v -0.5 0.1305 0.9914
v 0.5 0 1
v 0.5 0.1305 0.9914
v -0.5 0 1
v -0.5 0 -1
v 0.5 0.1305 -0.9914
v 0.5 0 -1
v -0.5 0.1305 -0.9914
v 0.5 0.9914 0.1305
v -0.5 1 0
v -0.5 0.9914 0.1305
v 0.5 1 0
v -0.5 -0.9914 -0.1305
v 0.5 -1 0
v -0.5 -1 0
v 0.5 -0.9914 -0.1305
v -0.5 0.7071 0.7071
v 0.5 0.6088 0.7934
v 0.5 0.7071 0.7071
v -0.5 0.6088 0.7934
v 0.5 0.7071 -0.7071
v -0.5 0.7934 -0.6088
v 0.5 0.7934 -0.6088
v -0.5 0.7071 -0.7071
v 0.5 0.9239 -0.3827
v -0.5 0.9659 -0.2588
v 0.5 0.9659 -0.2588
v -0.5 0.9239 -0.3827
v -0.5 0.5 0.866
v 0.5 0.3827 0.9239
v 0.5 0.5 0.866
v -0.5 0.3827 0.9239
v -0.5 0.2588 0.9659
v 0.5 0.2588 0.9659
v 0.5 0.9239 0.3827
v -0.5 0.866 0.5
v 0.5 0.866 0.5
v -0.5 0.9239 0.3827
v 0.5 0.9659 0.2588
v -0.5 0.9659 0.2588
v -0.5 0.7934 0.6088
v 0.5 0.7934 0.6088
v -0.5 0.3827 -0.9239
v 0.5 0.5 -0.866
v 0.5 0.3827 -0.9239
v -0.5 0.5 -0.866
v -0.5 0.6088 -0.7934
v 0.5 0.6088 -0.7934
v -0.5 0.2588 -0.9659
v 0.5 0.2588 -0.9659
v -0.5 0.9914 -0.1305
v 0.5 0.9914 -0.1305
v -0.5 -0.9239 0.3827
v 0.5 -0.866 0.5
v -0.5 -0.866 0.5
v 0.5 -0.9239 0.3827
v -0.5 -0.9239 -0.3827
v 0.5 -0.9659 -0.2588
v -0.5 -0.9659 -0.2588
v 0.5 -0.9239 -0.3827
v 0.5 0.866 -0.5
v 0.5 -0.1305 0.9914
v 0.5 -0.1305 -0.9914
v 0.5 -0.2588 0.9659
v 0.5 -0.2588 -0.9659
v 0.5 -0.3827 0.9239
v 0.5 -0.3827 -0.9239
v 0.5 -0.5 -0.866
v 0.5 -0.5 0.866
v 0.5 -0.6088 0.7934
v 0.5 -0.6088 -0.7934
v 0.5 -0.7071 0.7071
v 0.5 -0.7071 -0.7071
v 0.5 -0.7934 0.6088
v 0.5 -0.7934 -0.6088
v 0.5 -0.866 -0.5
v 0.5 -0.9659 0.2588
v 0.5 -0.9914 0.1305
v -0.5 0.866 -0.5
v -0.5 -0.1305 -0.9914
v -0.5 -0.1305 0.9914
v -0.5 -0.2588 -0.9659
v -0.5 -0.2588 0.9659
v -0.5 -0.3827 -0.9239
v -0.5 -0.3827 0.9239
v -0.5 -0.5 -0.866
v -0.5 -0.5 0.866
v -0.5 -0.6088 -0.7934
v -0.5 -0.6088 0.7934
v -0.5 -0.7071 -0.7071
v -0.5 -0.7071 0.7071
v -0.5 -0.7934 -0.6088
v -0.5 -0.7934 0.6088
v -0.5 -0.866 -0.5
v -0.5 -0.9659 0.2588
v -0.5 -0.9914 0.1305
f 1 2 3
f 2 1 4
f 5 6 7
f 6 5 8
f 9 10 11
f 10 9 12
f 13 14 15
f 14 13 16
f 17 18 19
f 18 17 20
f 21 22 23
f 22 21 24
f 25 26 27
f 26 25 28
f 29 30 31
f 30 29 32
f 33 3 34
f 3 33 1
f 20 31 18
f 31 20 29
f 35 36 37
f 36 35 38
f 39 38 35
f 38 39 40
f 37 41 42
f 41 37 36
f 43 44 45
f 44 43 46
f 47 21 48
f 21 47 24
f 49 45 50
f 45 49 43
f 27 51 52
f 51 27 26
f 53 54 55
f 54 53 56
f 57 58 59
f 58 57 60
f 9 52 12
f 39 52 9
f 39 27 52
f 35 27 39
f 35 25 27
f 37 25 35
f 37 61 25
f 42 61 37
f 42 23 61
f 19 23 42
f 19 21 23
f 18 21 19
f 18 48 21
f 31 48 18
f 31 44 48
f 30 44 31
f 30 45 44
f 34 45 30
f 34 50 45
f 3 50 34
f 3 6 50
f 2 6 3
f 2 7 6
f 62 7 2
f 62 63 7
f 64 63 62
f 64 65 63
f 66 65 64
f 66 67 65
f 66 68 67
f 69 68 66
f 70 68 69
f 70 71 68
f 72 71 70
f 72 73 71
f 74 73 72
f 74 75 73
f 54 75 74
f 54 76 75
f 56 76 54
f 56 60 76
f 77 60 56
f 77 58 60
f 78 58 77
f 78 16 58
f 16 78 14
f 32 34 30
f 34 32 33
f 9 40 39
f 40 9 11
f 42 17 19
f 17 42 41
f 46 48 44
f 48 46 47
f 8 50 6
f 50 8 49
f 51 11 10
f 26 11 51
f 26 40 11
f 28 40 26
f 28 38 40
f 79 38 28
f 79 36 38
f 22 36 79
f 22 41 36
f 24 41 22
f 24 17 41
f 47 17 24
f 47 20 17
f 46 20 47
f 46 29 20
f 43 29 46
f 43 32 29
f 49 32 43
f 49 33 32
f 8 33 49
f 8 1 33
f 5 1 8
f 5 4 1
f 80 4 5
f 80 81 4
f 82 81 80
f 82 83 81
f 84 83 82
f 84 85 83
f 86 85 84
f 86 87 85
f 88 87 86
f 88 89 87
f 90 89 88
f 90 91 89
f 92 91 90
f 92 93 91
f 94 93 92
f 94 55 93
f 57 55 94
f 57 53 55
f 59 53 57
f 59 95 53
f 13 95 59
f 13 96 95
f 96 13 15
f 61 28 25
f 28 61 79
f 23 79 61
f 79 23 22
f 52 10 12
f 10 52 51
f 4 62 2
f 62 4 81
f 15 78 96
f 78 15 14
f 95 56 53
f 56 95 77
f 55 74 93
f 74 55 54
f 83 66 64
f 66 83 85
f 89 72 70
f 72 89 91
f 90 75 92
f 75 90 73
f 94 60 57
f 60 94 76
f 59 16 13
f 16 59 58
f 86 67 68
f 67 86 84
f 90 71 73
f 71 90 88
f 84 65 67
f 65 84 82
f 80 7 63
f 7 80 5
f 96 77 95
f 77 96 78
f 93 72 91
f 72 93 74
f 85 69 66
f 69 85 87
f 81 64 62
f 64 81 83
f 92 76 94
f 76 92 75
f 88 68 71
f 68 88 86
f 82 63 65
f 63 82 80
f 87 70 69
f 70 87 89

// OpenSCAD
// file: ../../../lib/nutsnbolts/data-access.scad
// Norm Nuts and Bolts - a OpenSCAD library
// Copyright (C) 2012  Johannes Kneer

// This program is free software: you can redistribute it and/or modify
// it under the terms of the GNU General Public License as published by
// the Free Software Foundation, either version 3 of the License, or
// (at your option) any later version.

// This program is distributed in the hope that it will be useful,
// but WITHOUT ANY WARRANTY; without even the implied warranty of
// MERCHANTABILITY or FITNESS FOR A PARTICULAR PURPOSE.  See the
// GNU General Public License for more details.

// You should have received a copy of the GNU General Public License
// along with this program.  If not, see <http://www.gnu.org/licenses/>.


// DATABASE ACCESS FUNCTIONS AND CONSTANTS



// == CONSTANTS ==

// screw table access keys
_NB_S_DESC            = 0;
_NB_S_FAMKEY			    = 1;
_NB_S_LENGTH          = 2;
_NB_S_NOTHREAD_LENGTH = 3;

_NB_F_DESC			      = 0;
_NB_F_OUTER_DIA       = 1;
_NB_F_INNER_DIA       = 2;
_NB_F_LEAD            = 3;
_NB_F_KEY             = 4;
_NB_F_KEY_DEPTH       = 5;
_NB_F_HEAD_HEIGHT     = 6;
_NB_F_HEAD_DIA        = 7;
_NB_F_NUT_KEY         = 8;
_NB_F_NUT_HEIGHT      = 9;
_NB_F_PITCH_FINE      = 10;
_NB_F_PITCH_MEDIUM    = 11;
_NB_F_PITCH_COARSE    = 12;


// == FUNCTIONS ==

// _get_screw("descriptor")   with descriptor = M8x25
//   find the line for a general object in the data matrix

function _get_screw(n) = data_screw[search([n], data_screw)[0]];
function _get_screw_fam(n) = data_screw_fam[search([_get_screw(n)[_NB_S_FAMKEY]], data_screw_fam)[0]];

function _get_fam(n) = data_screw_fam[search([n], data_screw_fam)[0]];


// _get_XXXXX("descriptor") functions
// find a single property in the database

function _get_desc(n)        = _get_screw(n)[_NB_S_DESC];
function _get_famkey(n)         = _get_screw(n)[_NB_S_FAMKEY];
function _get_length(n)      = _get_screw(n)[_NB_S_LENGTH];
function _get_nt_length(n)   = _get_screw(n)[_NB_S_NOTHREAD_LENGTH];

function _get_outer_dia(n)   = _get_screw_fam(n)[_NB_F_OUTER_DIA];
function _get_inner_dia(n)   = _get_screw_fam(n)[_NB_F_INNER_DIA];
function _get_lead(n)        = _get_screw_fam(n)[_NB_F_LEAD];
function _get_head_height(n) = _get_screw_fam(n)[_NB_F_HEAD_HEIGHT];
function _get_head_dia(n)    = _get_screw_fam(n)[_NB_F_HEAD_DIA];
function _get_nut_key(n)     = _get_screw_fam(n)[_NB_F_NUT_KEY];
function _get_nut_height(n)  = _get_screw_fam(n)[_NB_F_NUT_HEIGHT];
function _get_fine_pitch(n)  = _get_screw_fam(n)[_NB_F_PITCH_FINE];
function _get_medium_pitch(n)  = _get_screw_fam(n)[_NB_F_PITCH_MEDIUM];
function _get_coarse_pitch(n)  = _get_screw_fam(n)[_NB_F_PITCH_COARSE];
// main file
/**********************************************************************************************************************
 **
 ** parts/vitamins/screw_M5x55.scad
 **
 ** This file renders a screw of the dimensions specified by the file name.
 **
 **********************************************************************************************************************/

include <../../../lib/nutsnbolts/cyl_head_bolt.scad>;

$fn = 48;
rotate([0, -90, 0])
	screw("M5x55"); 
